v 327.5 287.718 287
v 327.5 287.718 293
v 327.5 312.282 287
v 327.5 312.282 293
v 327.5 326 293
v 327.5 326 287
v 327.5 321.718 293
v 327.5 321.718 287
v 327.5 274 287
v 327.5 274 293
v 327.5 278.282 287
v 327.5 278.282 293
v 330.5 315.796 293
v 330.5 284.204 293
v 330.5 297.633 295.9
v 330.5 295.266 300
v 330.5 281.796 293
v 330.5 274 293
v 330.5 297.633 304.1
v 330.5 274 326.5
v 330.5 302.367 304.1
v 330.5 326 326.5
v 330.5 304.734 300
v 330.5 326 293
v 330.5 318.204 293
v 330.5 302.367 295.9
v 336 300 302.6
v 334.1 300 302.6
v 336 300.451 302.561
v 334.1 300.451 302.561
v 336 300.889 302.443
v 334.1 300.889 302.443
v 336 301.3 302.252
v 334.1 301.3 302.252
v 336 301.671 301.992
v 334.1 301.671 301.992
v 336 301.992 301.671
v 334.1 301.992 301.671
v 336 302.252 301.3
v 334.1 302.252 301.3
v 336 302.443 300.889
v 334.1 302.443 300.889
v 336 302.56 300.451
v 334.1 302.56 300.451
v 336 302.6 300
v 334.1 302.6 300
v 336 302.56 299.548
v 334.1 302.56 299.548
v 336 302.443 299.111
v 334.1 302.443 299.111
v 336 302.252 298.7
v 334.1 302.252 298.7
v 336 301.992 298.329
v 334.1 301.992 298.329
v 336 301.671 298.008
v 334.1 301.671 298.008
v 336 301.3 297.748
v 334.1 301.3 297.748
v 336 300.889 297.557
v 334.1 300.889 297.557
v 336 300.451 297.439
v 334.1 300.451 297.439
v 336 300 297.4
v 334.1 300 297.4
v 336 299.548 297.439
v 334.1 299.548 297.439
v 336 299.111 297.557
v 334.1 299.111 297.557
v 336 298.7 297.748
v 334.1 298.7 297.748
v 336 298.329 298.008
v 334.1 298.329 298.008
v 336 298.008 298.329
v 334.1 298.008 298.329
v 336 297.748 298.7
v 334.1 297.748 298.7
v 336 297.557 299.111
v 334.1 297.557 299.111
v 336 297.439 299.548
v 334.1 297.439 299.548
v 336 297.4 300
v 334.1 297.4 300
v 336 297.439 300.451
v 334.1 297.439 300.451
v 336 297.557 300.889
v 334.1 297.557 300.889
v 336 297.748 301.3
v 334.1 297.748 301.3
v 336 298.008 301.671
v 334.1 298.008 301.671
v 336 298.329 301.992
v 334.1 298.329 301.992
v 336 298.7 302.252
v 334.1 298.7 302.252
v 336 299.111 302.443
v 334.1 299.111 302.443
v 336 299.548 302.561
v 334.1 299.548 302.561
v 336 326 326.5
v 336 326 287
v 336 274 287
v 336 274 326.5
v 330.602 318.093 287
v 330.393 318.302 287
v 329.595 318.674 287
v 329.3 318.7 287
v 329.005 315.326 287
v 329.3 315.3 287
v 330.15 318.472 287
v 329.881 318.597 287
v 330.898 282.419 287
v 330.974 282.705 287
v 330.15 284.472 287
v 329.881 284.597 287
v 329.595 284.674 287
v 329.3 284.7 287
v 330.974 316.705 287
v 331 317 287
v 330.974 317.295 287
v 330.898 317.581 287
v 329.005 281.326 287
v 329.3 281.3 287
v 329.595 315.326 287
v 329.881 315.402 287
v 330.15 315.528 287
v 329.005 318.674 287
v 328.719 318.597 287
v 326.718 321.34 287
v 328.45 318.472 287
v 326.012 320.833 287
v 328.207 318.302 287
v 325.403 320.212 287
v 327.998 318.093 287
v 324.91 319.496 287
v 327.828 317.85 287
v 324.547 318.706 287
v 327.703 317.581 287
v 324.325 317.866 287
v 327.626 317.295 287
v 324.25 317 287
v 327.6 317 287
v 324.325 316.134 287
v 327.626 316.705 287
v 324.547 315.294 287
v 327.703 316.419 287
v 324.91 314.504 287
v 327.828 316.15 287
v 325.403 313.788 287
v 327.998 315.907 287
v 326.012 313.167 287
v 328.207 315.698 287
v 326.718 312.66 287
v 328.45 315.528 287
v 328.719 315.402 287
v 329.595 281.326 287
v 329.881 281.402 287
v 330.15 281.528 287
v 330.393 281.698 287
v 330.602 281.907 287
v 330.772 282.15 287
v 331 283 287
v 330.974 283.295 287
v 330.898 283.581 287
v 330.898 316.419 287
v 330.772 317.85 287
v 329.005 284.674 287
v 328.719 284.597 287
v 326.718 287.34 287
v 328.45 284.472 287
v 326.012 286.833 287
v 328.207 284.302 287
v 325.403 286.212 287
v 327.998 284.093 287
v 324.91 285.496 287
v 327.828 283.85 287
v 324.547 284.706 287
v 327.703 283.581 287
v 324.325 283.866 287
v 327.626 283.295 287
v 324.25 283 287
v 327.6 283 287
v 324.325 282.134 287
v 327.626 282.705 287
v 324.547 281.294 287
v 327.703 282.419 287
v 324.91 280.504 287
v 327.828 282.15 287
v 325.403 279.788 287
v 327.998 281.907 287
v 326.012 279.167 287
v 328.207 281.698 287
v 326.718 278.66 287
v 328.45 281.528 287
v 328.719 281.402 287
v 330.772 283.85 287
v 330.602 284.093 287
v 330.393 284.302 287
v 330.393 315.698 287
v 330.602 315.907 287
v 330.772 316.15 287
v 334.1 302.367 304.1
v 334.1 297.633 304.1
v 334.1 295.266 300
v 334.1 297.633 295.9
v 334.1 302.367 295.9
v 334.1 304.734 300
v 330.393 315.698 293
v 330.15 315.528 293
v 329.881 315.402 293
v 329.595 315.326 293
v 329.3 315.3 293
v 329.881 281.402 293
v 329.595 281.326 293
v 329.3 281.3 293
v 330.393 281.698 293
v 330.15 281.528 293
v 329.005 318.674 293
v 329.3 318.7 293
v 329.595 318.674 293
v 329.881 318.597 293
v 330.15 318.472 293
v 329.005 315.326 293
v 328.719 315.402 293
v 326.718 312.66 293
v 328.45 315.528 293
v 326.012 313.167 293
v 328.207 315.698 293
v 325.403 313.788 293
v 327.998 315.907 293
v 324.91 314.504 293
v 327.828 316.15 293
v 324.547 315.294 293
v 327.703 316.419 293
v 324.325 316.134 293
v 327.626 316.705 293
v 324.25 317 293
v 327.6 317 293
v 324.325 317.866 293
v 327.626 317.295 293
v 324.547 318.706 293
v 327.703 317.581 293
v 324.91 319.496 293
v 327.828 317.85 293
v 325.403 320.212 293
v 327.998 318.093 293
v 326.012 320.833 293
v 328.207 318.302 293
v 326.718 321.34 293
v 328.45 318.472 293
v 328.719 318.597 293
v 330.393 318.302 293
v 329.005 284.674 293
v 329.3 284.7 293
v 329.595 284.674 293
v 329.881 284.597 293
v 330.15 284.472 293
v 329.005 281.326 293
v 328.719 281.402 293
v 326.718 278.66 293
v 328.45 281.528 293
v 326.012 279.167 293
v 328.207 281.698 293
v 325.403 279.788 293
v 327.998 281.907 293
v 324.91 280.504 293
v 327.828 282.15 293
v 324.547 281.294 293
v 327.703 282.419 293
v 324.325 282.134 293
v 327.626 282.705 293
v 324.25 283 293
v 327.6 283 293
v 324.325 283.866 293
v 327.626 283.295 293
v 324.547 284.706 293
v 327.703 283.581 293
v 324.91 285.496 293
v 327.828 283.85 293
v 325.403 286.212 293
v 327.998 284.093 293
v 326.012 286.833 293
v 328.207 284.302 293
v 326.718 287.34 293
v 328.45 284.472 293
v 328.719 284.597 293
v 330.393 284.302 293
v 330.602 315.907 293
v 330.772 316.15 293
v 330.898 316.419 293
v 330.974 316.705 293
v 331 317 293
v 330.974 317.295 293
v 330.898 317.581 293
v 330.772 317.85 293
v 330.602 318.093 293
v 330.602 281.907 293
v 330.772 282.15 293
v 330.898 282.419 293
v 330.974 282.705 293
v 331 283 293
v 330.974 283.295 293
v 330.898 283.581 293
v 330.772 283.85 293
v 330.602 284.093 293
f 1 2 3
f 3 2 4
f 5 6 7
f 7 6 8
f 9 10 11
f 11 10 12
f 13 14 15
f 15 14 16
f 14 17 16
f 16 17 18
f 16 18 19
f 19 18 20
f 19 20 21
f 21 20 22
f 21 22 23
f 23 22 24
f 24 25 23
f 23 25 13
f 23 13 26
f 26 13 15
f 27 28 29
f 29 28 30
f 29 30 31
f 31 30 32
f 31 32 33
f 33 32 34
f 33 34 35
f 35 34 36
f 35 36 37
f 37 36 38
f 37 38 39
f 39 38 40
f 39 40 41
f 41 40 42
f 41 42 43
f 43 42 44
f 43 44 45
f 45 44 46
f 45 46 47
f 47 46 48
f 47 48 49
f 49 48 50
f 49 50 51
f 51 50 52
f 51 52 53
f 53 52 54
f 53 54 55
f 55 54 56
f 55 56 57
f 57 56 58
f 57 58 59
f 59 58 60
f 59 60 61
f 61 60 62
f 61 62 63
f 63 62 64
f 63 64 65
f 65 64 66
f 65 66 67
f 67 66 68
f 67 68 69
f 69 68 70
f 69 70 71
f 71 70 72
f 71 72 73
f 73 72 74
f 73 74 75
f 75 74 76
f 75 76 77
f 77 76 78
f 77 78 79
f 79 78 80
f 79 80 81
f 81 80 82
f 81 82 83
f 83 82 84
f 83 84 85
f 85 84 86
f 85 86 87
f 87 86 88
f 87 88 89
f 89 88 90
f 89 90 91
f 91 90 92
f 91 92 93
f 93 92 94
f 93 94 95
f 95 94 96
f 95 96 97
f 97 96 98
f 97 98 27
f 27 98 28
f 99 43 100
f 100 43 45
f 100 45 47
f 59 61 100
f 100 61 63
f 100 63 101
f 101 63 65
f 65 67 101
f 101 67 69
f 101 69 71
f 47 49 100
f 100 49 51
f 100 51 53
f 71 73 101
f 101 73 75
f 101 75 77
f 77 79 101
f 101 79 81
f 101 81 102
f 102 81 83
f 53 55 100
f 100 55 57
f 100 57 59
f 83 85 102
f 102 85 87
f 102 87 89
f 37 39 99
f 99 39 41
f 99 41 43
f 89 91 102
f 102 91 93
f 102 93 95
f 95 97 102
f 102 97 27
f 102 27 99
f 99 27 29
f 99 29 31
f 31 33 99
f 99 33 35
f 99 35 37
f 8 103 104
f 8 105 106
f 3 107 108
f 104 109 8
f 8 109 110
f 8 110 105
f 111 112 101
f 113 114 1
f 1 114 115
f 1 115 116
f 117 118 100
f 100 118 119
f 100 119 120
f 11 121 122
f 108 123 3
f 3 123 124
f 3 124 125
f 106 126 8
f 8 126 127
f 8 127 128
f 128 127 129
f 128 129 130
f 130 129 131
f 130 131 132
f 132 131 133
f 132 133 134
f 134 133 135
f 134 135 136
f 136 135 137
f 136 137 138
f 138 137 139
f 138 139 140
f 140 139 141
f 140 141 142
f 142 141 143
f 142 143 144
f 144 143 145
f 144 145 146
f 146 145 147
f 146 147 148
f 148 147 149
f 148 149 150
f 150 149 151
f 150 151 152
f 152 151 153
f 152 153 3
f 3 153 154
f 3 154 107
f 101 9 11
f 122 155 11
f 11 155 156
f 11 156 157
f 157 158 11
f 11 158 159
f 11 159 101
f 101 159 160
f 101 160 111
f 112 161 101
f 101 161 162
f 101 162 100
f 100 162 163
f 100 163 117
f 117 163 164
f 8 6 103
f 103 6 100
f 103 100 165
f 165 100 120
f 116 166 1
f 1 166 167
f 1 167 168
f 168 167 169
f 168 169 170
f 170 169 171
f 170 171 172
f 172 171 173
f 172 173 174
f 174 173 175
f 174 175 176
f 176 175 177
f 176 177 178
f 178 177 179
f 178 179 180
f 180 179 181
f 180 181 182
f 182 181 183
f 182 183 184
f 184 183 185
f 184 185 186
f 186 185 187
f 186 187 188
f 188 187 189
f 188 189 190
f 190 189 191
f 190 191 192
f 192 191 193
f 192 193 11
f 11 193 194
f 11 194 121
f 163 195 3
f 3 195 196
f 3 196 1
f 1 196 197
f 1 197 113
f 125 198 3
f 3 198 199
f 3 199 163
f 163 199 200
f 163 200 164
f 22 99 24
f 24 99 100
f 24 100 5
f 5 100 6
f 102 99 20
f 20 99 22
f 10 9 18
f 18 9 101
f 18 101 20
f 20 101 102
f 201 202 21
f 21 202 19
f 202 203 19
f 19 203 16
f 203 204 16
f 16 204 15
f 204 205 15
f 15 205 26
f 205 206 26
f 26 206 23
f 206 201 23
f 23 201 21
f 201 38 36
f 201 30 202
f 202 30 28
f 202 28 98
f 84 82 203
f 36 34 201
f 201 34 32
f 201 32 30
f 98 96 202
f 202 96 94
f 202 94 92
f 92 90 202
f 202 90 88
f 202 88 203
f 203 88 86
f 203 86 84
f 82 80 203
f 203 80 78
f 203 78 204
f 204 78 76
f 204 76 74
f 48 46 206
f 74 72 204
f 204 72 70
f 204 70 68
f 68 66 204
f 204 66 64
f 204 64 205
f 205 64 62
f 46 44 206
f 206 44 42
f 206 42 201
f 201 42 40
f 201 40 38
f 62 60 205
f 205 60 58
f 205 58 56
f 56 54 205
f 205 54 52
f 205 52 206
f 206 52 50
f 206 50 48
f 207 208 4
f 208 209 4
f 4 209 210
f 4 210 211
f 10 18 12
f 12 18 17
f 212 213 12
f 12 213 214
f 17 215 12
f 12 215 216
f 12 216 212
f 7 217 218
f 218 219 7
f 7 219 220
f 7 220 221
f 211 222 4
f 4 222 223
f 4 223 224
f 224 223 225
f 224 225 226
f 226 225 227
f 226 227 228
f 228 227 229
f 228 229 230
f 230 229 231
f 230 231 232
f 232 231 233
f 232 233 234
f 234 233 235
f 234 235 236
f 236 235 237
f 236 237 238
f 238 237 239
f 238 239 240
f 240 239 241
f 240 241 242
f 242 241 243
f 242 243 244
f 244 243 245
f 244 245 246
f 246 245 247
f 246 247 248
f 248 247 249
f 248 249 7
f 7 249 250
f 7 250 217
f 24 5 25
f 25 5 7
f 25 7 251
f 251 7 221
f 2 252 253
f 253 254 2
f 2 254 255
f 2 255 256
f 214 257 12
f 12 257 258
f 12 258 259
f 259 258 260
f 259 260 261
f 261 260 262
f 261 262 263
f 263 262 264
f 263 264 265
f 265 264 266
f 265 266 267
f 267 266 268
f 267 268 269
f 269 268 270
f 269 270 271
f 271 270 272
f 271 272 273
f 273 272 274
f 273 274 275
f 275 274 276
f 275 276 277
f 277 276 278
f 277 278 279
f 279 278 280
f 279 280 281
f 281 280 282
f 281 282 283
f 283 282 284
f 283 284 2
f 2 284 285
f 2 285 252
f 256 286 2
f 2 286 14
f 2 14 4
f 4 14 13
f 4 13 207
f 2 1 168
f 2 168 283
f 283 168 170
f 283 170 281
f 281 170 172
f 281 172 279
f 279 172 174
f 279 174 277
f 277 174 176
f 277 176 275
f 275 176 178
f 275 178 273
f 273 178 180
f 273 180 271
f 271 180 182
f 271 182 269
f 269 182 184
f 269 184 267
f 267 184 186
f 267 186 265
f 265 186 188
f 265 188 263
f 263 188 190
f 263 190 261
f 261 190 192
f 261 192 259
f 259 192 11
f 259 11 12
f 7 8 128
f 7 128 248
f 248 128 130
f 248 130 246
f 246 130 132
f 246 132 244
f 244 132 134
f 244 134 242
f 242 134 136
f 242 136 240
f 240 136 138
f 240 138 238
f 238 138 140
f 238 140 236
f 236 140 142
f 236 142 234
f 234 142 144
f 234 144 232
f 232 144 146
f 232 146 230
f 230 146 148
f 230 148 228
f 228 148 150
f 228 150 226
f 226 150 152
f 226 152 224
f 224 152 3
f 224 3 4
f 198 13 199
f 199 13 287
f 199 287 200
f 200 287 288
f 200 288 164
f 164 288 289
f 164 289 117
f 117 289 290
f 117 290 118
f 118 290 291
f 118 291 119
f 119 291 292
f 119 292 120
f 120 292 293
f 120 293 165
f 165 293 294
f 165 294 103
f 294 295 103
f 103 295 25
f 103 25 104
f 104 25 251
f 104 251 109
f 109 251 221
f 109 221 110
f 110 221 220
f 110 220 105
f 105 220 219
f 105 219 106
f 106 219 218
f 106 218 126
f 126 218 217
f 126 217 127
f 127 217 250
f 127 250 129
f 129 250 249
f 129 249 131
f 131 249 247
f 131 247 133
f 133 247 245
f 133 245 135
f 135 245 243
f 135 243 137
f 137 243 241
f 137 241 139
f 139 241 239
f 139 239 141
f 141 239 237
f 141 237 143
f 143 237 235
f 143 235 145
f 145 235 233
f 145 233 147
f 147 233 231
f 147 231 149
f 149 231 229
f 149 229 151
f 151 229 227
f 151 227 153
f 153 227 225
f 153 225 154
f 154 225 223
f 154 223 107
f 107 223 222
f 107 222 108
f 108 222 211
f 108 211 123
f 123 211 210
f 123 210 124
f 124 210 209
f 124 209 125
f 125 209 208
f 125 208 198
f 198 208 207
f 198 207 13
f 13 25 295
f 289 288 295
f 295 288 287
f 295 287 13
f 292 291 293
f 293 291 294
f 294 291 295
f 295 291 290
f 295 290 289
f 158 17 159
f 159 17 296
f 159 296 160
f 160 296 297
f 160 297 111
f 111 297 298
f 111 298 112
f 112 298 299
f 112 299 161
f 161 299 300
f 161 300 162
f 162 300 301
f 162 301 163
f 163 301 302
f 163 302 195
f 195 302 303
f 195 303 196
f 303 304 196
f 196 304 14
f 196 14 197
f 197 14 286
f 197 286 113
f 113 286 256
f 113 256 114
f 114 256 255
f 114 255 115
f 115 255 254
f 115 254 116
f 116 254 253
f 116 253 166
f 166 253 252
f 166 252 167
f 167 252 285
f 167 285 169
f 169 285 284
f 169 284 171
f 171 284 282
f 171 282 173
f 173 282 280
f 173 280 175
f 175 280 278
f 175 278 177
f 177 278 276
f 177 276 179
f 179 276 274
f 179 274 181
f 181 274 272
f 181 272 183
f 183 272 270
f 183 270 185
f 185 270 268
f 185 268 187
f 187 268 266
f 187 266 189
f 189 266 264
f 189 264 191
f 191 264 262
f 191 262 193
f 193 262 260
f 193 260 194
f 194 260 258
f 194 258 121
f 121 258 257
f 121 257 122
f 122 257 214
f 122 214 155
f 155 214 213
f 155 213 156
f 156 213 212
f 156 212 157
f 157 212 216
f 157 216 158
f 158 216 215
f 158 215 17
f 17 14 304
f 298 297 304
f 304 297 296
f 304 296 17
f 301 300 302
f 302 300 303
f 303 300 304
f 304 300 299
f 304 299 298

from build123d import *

# Parameters (mm, degrees)
SKETCH1_W           = 39.5
SKETCH1_H           = 52
SKETCH1_R           = 2.6
BOSS_EXTRUDE1_DEPTH = 5.5
CUT_EXTRUDE1_DEPTH  = 3.6
SKETCH3_W           = 8.5
SKETCH3_H           = 52
BOSS_EXTRUDE2_DEPTH = 6
SKETCH4_R           = 5.05
SKETCH4_R_2         = 1.7
BOSS_EXTRUDE3_DEPTH = 6
SKETCH5_R           = 5.05
SKETCH5_R_2         = 1.7
BOSS_EXTRUDE4_DEPTH = 6
SKETCH6_R           = 1.7
CUT_EXTRUDE2_DEPTH  = 6


with BuildPart() as part:
    # Sketch1 → Boss-Extrude1 (new body)
    with BuildSketch(Plane(origin=(330.5, 0, 0), x_dir=(0, 0, -1), z_dir=(1, 0, 0))):
        with Locations((-306.75, 300)):
            Rectangle(SKETCH1_W, SKETCH1_H)
        with Locations((-300, 300)):
            Circle(SKETCH1_R, mode=Mode.SUBTRACT)
    extrude(amount=BOSS_EXTRUDE1_DEPTH)

    # Sketch2 → Cut-Extrude1 (cut)
    with BuildSketch(Plane(origin=(330.5, 0, 0), x_dir=(0, 0, -1), z_dir=(1, 0, 0))):
        Polygon((-304.1, 302.367136104), (-300, 304.734272207), (-295.9, 302.367136104), (-295.9, 297.632863896), (-300, 295.265727793), (-304.1, 297.632863896), align=None)
    extrude(amount=CUT_EXTRUDE1_DEPTH, mode=Mode.SUBTRACT)

    # Sketch3 → Boss-Extrude2 (add)
    with BuildSketch(Plane.XY.offset(287)):
        with Locations((331.75, 300)):
            Rectangle(SKETCH3_W, SKETCH3_H)
    extrude(amount=BOSS_EXTRUDE2_DEPTH)

    # Sketch4 → Boss-Extrude3 (add)
    with BuildSketch(Plane.XY.offset(287)):
        with Locations((329.3, 283)):
            Circle(SKETCH4_R)
        with Locations((329.3, 283)):
            Circle(SKETCH4_R_2, mode=Mode.SUBTRACT)
    extrude(amount=BOSS_EXTRUDE3_DEPTH)

    # Sketch5 → Boss-Extrude4 (add)
    with BuildSketch(Plane.XY.offset(287)):
        with Locations((329.3, 317)):
            Circle(SKETCH5_R)
        with Locations((329.3, 317)):
            Circle(SKETCH5_R_2, mode=Mode.SUBTRACT)
    extrude(amount=BOSS_EXTRUDE4_DEPTH)

    # Sketch6 → Cut-Extrude2 (cut)
    with BuildSketch(Plane.XY.offset(287)):
        with Locations(Location((329.3, 283, 0), (0, 0, 314.900872156))):
            Circle(SKETCH6_R)
        with Locations(Location((329.3, 317, 0), (0, 0, 314.900872156))):
            Circle(SKETCH6_R)
    extrude(amount=CUT_EXTRUDE2_DEPTH, mode=Mode.SUBTRACT)


solid = part.part
